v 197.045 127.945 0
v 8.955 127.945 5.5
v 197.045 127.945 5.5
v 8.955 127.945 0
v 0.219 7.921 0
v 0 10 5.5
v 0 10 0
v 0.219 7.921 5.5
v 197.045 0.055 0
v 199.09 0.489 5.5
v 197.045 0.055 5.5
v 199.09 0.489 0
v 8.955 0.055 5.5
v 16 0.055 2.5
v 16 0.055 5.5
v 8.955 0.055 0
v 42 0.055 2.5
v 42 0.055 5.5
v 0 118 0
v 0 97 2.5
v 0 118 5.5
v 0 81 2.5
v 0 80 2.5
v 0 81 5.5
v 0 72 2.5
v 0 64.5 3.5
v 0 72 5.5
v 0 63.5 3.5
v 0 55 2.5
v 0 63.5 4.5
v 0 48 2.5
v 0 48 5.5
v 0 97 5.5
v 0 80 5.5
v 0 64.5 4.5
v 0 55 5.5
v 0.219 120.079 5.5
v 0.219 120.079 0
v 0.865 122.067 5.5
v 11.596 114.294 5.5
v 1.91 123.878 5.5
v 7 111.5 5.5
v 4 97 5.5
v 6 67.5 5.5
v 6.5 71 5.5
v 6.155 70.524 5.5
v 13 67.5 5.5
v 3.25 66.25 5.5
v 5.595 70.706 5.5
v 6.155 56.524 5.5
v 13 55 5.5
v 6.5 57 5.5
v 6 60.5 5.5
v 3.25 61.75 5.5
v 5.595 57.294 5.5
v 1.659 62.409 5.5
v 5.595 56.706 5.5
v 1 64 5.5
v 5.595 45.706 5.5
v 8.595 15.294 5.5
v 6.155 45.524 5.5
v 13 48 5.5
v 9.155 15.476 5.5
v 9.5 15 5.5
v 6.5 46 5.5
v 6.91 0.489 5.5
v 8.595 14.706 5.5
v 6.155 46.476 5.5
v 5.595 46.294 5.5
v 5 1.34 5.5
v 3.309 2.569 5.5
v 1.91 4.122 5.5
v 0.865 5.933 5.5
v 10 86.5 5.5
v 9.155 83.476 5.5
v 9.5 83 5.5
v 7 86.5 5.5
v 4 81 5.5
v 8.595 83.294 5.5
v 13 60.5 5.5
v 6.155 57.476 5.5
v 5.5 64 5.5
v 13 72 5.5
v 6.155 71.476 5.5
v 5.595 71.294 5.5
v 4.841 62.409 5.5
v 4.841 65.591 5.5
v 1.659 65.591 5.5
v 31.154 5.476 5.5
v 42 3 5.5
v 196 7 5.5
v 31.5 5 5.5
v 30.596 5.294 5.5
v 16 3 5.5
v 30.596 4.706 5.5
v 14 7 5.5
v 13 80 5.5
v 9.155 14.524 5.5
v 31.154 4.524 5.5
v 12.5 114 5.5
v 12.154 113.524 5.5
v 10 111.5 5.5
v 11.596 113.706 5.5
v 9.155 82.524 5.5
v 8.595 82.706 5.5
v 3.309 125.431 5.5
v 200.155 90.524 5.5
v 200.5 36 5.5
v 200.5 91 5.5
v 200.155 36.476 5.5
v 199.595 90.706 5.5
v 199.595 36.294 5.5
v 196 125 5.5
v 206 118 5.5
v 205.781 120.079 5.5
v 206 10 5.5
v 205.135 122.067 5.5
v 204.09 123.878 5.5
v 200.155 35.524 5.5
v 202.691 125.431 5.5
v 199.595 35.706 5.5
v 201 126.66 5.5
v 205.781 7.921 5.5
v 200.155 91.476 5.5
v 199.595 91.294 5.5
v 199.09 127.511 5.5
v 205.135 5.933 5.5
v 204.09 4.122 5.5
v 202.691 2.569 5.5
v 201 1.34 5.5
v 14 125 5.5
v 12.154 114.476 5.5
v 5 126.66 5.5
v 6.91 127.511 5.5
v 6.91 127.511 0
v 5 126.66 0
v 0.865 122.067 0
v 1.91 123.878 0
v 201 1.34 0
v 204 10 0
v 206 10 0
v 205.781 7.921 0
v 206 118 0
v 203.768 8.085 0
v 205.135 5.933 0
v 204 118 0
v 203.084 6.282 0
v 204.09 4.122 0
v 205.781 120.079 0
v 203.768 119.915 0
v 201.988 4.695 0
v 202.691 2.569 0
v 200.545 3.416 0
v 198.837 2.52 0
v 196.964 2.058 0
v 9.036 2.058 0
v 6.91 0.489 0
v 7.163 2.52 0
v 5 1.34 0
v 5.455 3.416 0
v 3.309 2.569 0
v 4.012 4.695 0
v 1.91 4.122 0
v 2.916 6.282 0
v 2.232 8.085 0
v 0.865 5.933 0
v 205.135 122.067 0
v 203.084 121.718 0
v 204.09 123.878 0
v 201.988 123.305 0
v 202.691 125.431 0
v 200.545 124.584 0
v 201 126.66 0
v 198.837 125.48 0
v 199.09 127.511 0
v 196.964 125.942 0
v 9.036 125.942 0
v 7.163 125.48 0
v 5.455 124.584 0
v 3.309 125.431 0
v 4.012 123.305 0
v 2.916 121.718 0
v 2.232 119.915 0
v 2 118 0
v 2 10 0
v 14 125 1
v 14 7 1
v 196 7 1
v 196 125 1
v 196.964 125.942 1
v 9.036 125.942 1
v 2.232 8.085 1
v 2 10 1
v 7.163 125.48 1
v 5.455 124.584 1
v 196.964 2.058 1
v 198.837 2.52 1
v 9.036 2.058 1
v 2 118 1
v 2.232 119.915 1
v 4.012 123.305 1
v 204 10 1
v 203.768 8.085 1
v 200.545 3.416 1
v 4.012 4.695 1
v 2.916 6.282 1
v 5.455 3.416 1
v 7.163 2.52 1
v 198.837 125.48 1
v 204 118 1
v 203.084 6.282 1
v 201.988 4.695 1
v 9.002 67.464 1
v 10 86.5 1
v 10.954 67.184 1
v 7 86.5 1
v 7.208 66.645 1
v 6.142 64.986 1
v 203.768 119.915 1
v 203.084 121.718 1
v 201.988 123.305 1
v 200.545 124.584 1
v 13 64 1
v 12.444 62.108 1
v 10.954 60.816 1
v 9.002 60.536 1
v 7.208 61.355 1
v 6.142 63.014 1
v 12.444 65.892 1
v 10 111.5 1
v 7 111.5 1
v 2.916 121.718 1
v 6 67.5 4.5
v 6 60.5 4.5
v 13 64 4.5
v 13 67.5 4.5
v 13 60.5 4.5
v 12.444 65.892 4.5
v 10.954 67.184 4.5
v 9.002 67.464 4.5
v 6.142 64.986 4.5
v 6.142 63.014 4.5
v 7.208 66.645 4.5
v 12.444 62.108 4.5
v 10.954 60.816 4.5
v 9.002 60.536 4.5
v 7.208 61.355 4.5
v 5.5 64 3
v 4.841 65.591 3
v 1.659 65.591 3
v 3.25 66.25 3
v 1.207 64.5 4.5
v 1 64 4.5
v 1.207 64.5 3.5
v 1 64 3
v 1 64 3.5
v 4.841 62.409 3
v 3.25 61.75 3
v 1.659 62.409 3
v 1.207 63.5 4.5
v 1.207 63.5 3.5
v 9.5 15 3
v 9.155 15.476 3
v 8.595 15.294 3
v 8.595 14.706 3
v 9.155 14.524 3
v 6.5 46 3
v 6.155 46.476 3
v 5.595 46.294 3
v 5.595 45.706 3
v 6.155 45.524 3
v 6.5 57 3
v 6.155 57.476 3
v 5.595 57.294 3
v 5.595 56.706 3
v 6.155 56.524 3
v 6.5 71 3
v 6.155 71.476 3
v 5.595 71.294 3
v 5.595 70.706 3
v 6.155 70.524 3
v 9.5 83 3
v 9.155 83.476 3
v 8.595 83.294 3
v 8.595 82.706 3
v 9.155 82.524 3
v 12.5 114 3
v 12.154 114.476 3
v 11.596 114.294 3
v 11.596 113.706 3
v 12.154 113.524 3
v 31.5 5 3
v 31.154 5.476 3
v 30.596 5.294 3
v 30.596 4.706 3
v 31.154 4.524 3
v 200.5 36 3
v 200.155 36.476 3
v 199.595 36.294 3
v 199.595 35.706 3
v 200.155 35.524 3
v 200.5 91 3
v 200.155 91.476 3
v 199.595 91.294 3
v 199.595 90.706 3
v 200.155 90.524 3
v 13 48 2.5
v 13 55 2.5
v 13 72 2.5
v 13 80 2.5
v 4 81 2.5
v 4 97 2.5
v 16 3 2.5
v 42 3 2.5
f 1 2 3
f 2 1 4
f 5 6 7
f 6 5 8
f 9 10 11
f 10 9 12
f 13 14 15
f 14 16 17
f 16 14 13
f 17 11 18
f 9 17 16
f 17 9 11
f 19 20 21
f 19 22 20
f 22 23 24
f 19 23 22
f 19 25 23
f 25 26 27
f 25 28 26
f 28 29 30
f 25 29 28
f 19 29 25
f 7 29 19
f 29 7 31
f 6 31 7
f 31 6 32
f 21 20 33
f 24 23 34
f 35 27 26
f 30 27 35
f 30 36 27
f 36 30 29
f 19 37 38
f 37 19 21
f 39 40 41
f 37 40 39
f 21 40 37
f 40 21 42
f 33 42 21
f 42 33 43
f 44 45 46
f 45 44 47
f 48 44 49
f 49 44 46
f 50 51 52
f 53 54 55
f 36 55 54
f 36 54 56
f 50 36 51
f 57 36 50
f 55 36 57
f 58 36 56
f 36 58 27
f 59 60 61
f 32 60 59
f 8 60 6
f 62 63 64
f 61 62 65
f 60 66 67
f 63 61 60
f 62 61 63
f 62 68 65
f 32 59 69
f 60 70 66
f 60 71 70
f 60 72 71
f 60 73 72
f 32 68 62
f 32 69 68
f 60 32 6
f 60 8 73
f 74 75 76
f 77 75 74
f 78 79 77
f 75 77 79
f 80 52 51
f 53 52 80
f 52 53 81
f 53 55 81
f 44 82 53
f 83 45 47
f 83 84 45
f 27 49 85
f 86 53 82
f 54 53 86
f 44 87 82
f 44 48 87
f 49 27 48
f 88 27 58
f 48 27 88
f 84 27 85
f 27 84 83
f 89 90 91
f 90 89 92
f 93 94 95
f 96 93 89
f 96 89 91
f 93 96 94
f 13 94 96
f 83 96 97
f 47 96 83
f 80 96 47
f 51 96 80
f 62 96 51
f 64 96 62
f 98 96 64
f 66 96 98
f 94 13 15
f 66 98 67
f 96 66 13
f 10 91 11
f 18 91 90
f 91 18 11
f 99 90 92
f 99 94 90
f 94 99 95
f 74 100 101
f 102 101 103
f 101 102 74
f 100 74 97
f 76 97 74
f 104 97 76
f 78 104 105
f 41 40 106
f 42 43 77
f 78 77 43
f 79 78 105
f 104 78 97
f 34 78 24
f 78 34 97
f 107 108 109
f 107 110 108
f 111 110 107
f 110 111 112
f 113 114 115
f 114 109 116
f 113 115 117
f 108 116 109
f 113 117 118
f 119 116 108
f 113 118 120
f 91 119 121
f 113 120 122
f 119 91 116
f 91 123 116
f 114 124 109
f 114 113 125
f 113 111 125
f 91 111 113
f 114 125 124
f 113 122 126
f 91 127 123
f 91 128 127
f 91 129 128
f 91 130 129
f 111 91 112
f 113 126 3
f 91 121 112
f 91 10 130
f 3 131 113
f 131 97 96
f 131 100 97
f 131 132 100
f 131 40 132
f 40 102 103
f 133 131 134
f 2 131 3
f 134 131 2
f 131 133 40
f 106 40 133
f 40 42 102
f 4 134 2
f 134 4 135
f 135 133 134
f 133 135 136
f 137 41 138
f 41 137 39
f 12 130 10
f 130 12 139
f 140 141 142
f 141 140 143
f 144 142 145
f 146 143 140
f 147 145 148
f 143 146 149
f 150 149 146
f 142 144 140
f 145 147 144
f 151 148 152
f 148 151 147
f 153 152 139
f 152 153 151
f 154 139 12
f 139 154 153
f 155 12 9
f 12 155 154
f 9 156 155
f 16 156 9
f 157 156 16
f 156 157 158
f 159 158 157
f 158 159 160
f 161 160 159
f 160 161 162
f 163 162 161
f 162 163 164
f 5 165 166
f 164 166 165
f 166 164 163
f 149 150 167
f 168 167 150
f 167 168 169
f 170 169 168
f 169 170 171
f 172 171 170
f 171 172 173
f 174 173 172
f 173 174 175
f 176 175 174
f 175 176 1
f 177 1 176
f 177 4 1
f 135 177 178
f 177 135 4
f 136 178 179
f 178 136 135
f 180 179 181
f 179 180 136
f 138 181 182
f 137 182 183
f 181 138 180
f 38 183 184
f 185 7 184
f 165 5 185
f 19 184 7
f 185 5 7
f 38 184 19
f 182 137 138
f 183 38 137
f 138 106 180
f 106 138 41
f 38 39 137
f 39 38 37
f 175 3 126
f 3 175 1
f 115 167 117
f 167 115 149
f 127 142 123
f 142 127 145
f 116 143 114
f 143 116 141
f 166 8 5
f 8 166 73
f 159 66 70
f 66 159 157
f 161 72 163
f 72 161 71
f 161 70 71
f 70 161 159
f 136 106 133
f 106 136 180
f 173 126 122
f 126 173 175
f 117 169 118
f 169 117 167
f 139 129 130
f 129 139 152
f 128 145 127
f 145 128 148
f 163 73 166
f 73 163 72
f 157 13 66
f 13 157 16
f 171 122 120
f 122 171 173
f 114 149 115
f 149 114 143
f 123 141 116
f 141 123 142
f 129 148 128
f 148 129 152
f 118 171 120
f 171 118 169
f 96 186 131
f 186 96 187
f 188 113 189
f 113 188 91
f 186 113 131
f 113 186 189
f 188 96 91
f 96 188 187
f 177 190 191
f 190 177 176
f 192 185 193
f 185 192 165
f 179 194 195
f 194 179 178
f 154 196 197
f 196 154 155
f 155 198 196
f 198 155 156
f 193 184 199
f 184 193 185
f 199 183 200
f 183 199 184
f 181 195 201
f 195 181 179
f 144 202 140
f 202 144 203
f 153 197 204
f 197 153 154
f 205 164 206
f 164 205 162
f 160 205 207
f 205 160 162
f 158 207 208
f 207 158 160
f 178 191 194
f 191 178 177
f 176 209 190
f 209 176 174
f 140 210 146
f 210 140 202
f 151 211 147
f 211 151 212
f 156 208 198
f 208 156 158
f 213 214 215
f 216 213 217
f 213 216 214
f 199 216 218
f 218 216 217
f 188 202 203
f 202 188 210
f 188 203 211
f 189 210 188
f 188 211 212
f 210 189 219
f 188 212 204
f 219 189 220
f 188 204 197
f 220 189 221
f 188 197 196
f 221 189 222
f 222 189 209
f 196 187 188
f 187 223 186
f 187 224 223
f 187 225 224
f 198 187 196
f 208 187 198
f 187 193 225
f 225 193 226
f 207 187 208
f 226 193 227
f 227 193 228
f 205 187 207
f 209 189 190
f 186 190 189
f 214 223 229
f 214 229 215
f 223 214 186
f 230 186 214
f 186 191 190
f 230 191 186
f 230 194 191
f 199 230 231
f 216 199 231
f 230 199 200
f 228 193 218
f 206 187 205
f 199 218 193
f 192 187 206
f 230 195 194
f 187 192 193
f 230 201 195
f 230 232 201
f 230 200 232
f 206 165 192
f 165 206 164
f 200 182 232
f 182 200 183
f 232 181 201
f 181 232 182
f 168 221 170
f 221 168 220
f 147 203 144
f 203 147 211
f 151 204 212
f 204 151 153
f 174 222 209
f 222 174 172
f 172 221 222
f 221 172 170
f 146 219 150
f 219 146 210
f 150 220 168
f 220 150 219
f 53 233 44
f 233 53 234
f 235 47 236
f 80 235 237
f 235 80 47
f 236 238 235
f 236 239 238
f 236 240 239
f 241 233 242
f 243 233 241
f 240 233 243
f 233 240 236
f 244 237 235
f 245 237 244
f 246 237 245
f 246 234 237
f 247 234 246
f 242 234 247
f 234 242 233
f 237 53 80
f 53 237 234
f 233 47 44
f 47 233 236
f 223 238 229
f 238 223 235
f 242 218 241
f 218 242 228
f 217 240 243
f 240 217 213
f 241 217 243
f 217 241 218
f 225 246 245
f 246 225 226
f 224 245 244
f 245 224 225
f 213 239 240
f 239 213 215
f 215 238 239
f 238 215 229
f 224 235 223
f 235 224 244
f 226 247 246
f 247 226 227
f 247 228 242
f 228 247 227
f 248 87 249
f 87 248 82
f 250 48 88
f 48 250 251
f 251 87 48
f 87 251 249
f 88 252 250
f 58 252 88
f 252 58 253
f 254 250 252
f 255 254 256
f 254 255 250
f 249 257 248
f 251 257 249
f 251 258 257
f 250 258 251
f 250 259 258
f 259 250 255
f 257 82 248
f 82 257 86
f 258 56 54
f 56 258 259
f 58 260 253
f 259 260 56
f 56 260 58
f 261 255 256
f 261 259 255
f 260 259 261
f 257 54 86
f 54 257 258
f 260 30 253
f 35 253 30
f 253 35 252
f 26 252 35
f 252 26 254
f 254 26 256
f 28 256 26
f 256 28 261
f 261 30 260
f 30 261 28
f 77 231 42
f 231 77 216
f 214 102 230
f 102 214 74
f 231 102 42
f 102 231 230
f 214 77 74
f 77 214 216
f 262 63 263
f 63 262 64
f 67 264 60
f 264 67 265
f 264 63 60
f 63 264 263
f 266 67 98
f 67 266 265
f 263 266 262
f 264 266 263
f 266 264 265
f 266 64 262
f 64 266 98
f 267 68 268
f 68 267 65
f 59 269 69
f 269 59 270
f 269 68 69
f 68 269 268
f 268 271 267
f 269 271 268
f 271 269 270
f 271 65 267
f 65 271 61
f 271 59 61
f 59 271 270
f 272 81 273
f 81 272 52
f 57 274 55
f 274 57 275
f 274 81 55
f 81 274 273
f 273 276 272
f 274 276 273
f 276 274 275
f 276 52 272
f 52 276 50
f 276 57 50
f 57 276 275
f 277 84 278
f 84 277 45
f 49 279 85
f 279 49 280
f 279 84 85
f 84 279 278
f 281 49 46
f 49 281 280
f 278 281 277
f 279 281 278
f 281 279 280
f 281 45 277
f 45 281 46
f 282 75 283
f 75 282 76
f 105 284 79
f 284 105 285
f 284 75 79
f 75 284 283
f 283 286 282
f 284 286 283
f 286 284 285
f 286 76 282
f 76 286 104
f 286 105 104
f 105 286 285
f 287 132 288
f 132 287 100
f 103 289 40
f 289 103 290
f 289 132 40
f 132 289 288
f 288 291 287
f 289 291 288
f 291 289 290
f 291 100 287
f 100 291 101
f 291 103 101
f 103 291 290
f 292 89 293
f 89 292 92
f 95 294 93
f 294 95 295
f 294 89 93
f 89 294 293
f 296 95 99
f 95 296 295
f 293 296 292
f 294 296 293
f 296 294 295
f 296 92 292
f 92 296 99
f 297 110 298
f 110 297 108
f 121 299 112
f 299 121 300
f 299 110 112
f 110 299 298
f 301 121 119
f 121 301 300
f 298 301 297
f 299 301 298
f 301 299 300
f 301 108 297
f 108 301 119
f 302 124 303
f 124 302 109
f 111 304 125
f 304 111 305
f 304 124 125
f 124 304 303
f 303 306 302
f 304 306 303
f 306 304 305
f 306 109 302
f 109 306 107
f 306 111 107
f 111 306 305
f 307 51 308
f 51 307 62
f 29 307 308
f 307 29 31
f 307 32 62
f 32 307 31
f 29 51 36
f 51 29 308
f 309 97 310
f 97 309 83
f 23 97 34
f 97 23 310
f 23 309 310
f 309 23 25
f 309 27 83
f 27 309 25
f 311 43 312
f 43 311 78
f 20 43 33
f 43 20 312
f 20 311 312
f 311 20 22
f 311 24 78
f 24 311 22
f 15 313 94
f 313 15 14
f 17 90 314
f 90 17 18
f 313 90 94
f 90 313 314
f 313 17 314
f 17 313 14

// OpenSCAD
caseWidth = 128;
caseLength = 206;
caseRadius = 10;
caseHeight = 5.5;
caseScreenBorder = 2;
caseScreenRadius = caseRadius - caseScreenBorder;
caseScreenHeight = 1;
caseIntRectWidth = 118;
caseIntRectLength = 182;

difference(){
    translate([0,0,0]){
        rad = caseRadius;
        width = caseWidth;
        length = caseLength;
        height = caseHeight;
        hull() {
        for (t =  [[rad,rad,0],[length-rad,rad,0],[length-rad,width-rad,0],[rad,width-rad,0]])
            translate(t) {
                cylinder(r=rad, h=height);
            }
        }
    }
    translate([14,7,0]){
        cube([caseIntRectLength,caseIntRectWidth,caseHeight]);
    }
    translate([caseScreenBorder,caseScreenBorder,0]){
        rad = caseScreenRadius;
        width = caseWidth-2*caseScreenBorder;
        length = caseLength-2*caseScreenBorder;
        height = caseScreenHeight;
        hull() {
        for (t =  [[rad,rad,0],[length-rad,rad,0],[length-rad,width-rad,0],[rad,width-rad,0]])
            translate(t) {
                cylinder(r=rad, h=height);
            }
        }
    }
    translate([6,60.5,caseHeight-1]){
        cube([7,7,1]);
    }
    translate([6+7/2,60.5+7/2]){
        cylinder(d=7, h=caseHeight);
    }
    translate([1+4.5/2,60.5+7/2,caseHeight-2.5]){
        cylinder(d=4.5, h=2.5);
    }
    translate([0,60.5+6/2,caseHeight-2]){
        cube([2,1,1]);
    }
    translate([7,86.5,0]){
        cube([3,25,caseHeight]);
    }
    translate([9,15,caseHeight-2.5]){
        cylinder(d=1, h=2.5);
    }
    translate([6,46,caseHeight-2.5]){
        cylinder(d=1, h=2.5);
    }
    translate([6,57,caseHeight-2.5]){
        cylinder(d=1, h=2.5);
    }
    translate([6,71,caseHeight-2.5]){
        cylinder(d=1, h=2.5);
    }
    translate([9,83,caseHeight-2.5]){
        cylinder(d=1, h=2.5);
    }
    translate([12,114,caseHeight-2.5]){
        cylinder(d=1, h=2.5);
    }
    translate([31,5,caseHeight-2.5]){
        cylinder(d=1, h=2.5);
    }
    translate([caseLength-6,36,caseHeight-2.5]){
        cylinder(d=1, h=2.5);
    }
    translate([caseLength-6,91,caseHeight-2.5]){
        cylinder(d=1, h=2.5);
    }
    
    translate([0,48,caseHeight-3]){
        cube([13,7,3]);
    }
    
    translate([0,72,caseHeight-3]){
        cube([13,8,3]);
    }

    translate([0,81,caseHeight-3]){
        cube([4,16,3]);
    }

    translate([16,0,caseHeight-3]){
        cube([26,3,3]);
    }
}
